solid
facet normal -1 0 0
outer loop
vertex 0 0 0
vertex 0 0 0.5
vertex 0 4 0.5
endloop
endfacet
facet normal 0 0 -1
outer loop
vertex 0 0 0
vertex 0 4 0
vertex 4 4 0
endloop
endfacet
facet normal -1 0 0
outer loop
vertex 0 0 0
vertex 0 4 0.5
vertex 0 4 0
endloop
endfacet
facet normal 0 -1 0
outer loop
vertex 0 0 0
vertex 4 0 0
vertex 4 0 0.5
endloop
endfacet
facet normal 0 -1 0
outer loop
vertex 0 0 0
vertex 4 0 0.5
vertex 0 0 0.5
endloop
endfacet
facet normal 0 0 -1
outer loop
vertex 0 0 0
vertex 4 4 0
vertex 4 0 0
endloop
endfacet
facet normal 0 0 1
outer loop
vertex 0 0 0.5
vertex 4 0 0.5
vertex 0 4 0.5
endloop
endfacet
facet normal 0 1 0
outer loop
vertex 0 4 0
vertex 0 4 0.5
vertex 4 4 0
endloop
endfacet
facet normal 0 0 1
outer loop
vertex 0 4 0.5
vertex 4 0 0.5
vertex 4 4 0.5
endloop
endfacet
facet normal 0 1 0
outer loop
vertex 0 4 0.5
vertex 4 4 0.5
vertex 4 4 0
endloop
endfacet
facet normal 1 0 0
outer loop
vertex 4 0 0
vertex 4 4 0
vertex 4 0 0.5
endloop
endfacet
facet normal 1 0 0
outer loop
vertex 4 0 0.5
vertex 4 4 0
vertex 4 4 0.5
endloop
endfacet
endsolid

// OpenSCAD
/* Warning, this is a very basic generator with a lot of approximation 
input data : [UQFN, JQX, 4x4x0.5mm, 16, , A, C04-00257A]
generated by com.zoubworld.electronics.cad.model3d.Basic
Date : Sun Feb 15 10:50:48 CET 2026
*/

//body
color("black")
translate([0,0,0])
cube([4.0,4.0,0.5], center=false);
